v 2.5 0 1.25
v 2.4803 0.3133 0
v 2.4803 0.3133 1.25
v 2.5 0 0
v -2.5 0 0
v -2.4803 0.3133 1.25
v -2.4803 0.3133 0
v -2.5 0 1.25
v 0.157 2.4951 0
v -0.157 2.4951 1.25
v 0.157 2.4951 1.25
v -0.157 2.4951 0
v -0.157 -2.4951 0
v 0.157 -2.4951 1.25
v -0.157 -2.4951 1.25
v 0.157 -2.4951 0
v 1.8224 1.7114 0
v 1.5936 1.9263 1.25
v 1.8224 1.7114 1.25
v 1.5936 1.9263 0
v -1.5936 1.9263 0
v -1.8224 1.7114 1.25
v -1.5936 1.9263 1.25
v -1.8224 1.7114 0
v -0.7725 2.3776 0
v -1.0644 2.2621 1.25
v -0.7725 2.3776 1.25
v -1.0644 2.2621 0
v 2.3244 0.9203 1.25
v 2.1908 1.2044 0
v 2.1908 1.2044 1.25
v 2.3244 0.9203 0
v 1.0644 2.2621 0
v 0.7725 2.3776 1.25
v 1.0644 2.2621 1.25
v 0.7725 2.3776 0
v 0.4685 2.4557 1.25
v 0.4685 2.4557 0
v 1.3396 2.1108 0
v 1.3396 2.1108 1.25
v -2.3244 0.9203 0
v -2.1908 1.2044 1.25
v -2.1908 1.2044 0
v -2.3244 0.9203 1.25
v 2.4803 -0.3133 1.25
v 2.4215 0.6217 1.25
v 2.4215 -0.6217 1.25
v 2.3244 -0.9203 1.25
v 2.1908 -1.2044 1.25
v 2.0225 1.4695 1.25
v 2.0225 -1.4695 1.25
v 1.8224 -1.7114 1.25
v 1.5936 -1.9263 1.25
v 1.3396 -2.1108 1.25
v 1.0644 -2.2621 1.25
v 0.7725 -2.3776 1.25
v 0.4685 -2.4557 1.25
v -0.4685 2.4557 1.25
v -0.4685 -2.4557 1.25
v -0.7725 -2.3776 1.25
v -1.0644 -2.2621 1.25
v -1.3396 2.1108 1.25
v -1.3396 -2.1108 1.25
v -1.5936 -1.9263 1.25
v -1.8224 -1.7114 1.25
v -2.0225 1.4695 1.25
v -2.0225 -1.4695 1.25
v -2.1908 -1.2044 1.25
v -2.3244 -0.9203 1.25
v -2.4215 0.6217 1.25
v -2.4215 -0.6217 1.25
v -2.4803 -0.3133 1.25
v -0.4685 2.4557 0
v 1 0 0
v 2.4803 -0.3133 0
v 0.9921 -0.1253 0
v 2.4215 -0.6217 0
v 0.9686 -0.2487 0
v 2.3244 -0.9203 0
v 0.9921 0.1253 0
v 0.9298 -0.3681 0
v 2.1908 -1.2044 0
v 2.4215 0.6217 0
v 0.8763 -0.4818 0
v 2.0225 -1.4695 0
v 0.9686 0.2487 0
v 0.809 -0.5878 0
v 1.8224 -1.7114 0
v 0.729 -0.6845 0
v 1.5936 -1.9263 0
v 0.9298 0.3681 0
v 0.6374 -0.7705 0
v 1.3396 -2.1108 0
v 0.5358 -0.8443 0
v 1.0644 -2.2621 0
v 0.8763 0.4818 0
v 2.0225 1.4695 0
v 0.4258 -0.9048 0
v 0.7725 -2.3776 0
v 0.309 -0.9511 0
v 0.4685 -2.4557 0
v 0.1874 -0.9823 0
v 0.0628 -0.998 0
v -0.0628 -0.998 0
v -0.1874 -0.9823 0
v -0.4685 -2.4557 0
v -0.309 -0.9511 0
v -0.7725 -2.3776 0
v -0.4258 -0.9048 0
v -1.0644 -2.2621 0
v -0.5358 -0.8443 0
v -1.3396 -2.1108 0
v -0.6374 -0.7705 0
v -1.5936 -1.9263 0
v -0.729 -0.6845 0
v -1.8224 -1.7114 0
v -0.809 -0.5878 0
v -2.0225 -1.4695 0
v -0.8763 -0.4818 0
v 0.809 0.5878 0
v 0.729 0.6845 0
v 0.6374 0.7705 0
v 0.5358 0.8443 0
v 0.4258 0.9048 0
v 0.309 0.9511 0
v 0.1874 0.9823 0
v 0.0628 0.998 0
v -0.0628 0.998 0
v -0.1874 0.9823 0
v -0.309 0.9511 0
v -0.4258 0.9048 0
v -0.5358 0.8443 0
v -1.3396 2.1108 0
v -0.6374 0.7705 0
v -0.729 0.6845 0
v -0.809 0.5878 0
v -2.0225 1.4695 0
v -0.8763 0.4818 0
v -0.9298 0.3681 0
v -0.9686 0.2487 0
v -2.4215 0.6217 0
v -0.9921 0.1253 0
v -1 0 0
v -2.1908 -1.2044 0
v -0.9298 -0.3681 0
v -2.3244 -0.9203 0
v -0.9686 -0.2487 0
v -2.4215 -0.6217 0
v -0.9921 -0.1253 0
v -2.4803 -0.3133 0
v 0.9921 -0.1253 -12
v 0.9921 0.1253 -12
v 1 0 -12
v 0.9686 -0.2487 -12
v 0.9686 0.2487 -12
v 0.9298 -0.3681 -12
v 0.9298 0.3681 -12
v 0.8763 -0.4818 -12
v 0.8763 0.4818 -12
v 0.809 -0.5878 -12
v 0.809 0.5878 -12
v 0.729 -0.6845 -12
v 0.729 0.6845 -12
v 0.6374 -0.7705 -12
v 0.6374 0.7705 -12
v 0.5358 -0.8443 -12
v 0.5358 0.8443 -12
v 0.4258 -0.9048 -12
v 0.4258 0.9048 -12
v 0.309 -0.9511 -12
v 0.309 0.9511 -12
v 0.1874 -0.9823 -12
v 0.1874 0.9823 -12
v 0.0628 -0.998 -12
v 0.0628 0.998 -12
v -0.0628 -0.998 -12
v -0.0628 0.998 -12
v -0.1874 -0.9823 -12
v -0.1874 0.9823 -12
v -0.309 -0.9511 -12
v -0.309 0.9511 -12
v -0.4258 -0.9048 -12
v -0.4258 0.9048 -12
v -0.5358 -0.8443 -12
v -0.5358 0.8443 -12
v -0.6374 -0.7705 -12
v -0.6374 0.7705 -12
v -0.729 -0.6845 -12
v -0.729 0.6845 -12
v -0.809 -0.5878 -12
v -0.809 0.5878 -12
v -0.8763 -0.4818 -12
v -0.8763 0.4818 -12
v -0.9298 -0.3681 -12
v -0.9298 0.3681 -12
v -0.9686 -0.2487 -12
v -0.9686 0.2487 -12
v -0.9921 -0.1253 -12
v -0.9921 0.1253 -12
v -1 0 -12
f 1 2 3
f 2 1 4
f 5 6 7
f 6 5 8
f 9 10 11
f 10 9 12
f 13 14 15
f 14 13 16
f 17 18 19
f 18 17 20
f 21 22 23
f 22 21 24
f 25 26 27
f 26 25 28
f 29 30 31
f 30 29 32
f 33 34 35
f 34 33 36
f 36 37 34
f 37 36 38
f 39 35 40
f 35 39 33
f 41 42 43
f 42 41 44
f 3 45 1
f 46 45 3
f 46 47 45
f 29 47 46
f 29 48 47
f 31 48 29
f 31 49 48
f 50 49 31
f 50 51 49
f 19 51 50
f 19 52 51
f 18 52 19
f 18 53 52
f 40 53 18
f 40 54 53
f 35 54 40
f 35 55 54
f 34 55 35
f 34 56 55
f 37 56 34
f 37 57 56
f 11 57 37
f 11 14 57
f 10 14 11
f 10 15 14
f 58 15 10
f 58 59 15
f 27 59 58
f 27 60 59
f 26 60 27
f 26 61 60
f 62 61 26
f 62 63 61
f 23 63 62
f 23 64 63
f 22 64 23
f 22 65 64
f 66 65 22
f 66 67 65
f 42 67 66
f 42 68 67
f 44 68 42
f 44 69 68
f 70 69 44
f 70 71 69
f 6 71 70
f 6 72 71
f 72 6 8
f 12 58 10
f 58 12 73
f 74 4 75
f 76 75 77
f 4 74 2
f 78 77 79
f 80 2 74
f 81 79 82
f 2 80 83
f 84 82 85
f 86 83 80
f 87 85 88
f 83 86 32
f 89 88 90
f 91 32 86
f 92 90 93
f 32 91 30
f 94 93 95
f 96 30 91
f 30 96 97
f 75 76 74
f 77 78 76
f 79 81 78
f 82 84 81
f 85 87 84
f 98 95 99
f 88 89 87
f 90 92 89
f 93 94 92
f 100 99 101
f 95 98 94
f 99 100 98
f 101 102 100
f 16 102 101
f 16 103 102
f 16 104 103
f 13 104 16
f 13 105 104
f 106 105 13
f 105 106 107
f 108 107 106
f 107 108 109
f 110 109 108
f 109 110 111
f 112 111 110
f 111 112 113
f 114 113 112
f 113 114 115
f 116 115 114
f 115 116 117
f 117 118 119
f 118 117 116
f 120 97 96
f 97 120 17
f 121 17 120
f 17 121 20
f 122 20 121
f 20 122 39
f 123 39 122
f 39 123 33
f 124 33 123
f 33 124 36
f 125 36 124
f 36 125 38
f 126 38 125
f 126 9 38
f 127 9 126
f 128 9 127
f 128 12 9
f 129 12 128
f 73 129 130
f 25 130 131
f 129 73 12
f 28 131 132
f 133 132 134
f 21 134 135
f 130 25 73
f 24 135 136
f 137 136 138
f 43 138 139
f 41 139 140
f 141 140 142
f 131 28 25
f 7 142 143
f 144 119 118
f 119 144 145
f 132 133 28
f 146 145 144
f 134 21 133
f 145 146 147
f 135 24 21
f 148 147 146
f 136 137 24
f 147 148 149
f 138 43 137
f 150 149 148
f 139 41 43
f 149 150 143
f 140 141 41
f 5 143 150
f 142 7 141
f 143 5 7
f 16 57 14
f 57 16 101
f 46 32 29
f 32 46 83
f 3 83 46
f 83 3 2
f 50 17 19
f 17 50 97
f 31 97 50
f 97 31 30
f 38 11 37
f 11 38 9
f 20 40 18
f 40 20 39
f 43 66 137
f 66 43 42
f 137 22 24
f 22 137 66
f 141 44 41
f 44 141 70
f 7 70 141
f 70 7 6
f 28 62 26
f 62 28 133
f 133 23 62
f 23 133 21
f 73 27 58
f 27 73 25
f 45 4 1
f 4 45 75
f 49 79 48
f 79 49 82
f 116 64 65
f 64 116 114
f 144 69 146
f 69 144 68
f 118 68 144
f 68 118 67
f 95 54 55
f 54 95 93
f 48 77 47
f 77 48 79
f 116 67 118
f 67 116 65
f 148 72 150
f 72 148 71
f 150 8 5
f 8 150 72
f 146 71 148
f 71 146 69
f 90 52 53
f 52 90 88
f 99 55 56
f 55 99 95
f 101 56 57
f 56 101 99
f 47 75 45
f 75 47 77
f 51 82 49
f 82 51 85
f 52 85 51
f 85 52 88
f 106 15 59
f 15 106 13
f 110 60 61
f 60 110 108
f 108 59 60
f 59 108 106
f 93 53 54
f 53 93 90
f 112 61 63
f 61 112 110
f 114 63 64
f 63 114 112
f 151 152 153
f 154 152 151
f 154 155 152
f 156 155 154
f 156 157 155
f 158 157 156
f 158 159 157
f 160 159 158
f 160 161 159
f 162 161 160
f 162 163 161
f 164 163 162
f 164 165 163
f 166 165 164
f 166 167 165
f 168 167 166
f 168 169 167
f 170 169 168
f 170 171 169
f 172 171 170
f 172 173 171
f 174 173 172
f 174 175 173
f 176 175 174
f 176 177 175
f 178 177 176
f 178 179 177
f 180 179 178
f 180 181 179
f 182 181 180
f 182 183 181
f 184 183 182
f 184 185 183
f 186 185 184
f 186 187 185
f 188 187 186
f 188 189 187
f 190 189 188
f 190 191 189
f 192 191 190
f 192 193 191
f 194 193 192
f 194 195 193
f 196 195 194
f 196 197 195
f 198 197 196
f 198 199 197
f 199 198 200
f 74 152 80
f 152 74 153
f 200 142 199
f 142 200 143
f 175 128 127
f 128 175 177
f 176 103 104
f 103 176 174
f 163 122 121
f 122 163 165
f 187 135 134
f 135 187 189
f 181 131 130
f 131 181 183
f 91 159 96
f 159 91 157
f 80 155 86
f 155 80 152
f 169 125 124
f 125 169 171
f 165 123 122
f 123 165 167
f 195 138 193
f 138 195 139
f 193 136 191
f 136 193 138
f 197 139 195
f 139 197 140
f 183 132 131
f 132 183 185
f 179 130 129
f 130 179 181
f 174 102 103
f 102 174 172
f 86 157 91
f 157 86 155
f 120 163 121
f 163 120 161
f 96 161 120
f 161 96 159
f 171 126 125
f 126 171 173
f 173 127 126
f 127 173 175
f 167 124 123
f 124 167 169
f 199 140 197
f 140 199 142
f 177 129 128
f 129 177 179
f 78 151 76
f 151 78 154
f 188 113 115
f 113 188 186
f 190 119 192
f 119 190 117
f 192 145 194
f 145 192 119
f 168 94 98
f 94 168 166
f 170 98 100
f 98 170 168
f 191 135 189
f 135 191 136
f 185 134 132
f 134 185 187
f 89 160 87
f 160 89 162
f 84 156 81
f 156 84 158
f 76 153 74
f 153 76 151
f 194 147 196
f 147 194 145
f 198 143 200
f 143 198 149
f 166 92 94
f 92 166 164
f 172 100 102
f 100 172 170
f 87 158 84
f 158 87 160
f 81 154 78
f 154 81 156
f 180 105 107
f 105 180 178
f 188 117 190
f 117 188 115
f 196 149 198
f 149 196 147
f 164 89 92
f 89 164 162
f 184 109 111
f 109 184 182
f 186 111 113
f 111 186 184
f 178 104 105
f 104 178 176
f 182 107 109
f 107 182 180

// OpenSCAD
$fn = 50;


difference() {
	union() {
		translate(v = [0, 0, 0]) {
			rotate(a = [0, 0, 0]) {
				difference() {
					union() {
						cylinder(h = 1.2500000000, r = 2.5000000000);
						translate(v = [0, 0, -12.0000000000]) {
							cylinder(h = 12, r = 0.7500000000);
						}
						translate(v = [0, 0, -12.0000000000]) {
							cylinder(h = 12, r = 1.0000000000);
						}
						translate(v = [0, 0, -12.0000000000]) {
							cylinder(h = 12, r = 0.7500000000);
						}
					}
					union();
				}
			}
		}
	}
	union();
}
